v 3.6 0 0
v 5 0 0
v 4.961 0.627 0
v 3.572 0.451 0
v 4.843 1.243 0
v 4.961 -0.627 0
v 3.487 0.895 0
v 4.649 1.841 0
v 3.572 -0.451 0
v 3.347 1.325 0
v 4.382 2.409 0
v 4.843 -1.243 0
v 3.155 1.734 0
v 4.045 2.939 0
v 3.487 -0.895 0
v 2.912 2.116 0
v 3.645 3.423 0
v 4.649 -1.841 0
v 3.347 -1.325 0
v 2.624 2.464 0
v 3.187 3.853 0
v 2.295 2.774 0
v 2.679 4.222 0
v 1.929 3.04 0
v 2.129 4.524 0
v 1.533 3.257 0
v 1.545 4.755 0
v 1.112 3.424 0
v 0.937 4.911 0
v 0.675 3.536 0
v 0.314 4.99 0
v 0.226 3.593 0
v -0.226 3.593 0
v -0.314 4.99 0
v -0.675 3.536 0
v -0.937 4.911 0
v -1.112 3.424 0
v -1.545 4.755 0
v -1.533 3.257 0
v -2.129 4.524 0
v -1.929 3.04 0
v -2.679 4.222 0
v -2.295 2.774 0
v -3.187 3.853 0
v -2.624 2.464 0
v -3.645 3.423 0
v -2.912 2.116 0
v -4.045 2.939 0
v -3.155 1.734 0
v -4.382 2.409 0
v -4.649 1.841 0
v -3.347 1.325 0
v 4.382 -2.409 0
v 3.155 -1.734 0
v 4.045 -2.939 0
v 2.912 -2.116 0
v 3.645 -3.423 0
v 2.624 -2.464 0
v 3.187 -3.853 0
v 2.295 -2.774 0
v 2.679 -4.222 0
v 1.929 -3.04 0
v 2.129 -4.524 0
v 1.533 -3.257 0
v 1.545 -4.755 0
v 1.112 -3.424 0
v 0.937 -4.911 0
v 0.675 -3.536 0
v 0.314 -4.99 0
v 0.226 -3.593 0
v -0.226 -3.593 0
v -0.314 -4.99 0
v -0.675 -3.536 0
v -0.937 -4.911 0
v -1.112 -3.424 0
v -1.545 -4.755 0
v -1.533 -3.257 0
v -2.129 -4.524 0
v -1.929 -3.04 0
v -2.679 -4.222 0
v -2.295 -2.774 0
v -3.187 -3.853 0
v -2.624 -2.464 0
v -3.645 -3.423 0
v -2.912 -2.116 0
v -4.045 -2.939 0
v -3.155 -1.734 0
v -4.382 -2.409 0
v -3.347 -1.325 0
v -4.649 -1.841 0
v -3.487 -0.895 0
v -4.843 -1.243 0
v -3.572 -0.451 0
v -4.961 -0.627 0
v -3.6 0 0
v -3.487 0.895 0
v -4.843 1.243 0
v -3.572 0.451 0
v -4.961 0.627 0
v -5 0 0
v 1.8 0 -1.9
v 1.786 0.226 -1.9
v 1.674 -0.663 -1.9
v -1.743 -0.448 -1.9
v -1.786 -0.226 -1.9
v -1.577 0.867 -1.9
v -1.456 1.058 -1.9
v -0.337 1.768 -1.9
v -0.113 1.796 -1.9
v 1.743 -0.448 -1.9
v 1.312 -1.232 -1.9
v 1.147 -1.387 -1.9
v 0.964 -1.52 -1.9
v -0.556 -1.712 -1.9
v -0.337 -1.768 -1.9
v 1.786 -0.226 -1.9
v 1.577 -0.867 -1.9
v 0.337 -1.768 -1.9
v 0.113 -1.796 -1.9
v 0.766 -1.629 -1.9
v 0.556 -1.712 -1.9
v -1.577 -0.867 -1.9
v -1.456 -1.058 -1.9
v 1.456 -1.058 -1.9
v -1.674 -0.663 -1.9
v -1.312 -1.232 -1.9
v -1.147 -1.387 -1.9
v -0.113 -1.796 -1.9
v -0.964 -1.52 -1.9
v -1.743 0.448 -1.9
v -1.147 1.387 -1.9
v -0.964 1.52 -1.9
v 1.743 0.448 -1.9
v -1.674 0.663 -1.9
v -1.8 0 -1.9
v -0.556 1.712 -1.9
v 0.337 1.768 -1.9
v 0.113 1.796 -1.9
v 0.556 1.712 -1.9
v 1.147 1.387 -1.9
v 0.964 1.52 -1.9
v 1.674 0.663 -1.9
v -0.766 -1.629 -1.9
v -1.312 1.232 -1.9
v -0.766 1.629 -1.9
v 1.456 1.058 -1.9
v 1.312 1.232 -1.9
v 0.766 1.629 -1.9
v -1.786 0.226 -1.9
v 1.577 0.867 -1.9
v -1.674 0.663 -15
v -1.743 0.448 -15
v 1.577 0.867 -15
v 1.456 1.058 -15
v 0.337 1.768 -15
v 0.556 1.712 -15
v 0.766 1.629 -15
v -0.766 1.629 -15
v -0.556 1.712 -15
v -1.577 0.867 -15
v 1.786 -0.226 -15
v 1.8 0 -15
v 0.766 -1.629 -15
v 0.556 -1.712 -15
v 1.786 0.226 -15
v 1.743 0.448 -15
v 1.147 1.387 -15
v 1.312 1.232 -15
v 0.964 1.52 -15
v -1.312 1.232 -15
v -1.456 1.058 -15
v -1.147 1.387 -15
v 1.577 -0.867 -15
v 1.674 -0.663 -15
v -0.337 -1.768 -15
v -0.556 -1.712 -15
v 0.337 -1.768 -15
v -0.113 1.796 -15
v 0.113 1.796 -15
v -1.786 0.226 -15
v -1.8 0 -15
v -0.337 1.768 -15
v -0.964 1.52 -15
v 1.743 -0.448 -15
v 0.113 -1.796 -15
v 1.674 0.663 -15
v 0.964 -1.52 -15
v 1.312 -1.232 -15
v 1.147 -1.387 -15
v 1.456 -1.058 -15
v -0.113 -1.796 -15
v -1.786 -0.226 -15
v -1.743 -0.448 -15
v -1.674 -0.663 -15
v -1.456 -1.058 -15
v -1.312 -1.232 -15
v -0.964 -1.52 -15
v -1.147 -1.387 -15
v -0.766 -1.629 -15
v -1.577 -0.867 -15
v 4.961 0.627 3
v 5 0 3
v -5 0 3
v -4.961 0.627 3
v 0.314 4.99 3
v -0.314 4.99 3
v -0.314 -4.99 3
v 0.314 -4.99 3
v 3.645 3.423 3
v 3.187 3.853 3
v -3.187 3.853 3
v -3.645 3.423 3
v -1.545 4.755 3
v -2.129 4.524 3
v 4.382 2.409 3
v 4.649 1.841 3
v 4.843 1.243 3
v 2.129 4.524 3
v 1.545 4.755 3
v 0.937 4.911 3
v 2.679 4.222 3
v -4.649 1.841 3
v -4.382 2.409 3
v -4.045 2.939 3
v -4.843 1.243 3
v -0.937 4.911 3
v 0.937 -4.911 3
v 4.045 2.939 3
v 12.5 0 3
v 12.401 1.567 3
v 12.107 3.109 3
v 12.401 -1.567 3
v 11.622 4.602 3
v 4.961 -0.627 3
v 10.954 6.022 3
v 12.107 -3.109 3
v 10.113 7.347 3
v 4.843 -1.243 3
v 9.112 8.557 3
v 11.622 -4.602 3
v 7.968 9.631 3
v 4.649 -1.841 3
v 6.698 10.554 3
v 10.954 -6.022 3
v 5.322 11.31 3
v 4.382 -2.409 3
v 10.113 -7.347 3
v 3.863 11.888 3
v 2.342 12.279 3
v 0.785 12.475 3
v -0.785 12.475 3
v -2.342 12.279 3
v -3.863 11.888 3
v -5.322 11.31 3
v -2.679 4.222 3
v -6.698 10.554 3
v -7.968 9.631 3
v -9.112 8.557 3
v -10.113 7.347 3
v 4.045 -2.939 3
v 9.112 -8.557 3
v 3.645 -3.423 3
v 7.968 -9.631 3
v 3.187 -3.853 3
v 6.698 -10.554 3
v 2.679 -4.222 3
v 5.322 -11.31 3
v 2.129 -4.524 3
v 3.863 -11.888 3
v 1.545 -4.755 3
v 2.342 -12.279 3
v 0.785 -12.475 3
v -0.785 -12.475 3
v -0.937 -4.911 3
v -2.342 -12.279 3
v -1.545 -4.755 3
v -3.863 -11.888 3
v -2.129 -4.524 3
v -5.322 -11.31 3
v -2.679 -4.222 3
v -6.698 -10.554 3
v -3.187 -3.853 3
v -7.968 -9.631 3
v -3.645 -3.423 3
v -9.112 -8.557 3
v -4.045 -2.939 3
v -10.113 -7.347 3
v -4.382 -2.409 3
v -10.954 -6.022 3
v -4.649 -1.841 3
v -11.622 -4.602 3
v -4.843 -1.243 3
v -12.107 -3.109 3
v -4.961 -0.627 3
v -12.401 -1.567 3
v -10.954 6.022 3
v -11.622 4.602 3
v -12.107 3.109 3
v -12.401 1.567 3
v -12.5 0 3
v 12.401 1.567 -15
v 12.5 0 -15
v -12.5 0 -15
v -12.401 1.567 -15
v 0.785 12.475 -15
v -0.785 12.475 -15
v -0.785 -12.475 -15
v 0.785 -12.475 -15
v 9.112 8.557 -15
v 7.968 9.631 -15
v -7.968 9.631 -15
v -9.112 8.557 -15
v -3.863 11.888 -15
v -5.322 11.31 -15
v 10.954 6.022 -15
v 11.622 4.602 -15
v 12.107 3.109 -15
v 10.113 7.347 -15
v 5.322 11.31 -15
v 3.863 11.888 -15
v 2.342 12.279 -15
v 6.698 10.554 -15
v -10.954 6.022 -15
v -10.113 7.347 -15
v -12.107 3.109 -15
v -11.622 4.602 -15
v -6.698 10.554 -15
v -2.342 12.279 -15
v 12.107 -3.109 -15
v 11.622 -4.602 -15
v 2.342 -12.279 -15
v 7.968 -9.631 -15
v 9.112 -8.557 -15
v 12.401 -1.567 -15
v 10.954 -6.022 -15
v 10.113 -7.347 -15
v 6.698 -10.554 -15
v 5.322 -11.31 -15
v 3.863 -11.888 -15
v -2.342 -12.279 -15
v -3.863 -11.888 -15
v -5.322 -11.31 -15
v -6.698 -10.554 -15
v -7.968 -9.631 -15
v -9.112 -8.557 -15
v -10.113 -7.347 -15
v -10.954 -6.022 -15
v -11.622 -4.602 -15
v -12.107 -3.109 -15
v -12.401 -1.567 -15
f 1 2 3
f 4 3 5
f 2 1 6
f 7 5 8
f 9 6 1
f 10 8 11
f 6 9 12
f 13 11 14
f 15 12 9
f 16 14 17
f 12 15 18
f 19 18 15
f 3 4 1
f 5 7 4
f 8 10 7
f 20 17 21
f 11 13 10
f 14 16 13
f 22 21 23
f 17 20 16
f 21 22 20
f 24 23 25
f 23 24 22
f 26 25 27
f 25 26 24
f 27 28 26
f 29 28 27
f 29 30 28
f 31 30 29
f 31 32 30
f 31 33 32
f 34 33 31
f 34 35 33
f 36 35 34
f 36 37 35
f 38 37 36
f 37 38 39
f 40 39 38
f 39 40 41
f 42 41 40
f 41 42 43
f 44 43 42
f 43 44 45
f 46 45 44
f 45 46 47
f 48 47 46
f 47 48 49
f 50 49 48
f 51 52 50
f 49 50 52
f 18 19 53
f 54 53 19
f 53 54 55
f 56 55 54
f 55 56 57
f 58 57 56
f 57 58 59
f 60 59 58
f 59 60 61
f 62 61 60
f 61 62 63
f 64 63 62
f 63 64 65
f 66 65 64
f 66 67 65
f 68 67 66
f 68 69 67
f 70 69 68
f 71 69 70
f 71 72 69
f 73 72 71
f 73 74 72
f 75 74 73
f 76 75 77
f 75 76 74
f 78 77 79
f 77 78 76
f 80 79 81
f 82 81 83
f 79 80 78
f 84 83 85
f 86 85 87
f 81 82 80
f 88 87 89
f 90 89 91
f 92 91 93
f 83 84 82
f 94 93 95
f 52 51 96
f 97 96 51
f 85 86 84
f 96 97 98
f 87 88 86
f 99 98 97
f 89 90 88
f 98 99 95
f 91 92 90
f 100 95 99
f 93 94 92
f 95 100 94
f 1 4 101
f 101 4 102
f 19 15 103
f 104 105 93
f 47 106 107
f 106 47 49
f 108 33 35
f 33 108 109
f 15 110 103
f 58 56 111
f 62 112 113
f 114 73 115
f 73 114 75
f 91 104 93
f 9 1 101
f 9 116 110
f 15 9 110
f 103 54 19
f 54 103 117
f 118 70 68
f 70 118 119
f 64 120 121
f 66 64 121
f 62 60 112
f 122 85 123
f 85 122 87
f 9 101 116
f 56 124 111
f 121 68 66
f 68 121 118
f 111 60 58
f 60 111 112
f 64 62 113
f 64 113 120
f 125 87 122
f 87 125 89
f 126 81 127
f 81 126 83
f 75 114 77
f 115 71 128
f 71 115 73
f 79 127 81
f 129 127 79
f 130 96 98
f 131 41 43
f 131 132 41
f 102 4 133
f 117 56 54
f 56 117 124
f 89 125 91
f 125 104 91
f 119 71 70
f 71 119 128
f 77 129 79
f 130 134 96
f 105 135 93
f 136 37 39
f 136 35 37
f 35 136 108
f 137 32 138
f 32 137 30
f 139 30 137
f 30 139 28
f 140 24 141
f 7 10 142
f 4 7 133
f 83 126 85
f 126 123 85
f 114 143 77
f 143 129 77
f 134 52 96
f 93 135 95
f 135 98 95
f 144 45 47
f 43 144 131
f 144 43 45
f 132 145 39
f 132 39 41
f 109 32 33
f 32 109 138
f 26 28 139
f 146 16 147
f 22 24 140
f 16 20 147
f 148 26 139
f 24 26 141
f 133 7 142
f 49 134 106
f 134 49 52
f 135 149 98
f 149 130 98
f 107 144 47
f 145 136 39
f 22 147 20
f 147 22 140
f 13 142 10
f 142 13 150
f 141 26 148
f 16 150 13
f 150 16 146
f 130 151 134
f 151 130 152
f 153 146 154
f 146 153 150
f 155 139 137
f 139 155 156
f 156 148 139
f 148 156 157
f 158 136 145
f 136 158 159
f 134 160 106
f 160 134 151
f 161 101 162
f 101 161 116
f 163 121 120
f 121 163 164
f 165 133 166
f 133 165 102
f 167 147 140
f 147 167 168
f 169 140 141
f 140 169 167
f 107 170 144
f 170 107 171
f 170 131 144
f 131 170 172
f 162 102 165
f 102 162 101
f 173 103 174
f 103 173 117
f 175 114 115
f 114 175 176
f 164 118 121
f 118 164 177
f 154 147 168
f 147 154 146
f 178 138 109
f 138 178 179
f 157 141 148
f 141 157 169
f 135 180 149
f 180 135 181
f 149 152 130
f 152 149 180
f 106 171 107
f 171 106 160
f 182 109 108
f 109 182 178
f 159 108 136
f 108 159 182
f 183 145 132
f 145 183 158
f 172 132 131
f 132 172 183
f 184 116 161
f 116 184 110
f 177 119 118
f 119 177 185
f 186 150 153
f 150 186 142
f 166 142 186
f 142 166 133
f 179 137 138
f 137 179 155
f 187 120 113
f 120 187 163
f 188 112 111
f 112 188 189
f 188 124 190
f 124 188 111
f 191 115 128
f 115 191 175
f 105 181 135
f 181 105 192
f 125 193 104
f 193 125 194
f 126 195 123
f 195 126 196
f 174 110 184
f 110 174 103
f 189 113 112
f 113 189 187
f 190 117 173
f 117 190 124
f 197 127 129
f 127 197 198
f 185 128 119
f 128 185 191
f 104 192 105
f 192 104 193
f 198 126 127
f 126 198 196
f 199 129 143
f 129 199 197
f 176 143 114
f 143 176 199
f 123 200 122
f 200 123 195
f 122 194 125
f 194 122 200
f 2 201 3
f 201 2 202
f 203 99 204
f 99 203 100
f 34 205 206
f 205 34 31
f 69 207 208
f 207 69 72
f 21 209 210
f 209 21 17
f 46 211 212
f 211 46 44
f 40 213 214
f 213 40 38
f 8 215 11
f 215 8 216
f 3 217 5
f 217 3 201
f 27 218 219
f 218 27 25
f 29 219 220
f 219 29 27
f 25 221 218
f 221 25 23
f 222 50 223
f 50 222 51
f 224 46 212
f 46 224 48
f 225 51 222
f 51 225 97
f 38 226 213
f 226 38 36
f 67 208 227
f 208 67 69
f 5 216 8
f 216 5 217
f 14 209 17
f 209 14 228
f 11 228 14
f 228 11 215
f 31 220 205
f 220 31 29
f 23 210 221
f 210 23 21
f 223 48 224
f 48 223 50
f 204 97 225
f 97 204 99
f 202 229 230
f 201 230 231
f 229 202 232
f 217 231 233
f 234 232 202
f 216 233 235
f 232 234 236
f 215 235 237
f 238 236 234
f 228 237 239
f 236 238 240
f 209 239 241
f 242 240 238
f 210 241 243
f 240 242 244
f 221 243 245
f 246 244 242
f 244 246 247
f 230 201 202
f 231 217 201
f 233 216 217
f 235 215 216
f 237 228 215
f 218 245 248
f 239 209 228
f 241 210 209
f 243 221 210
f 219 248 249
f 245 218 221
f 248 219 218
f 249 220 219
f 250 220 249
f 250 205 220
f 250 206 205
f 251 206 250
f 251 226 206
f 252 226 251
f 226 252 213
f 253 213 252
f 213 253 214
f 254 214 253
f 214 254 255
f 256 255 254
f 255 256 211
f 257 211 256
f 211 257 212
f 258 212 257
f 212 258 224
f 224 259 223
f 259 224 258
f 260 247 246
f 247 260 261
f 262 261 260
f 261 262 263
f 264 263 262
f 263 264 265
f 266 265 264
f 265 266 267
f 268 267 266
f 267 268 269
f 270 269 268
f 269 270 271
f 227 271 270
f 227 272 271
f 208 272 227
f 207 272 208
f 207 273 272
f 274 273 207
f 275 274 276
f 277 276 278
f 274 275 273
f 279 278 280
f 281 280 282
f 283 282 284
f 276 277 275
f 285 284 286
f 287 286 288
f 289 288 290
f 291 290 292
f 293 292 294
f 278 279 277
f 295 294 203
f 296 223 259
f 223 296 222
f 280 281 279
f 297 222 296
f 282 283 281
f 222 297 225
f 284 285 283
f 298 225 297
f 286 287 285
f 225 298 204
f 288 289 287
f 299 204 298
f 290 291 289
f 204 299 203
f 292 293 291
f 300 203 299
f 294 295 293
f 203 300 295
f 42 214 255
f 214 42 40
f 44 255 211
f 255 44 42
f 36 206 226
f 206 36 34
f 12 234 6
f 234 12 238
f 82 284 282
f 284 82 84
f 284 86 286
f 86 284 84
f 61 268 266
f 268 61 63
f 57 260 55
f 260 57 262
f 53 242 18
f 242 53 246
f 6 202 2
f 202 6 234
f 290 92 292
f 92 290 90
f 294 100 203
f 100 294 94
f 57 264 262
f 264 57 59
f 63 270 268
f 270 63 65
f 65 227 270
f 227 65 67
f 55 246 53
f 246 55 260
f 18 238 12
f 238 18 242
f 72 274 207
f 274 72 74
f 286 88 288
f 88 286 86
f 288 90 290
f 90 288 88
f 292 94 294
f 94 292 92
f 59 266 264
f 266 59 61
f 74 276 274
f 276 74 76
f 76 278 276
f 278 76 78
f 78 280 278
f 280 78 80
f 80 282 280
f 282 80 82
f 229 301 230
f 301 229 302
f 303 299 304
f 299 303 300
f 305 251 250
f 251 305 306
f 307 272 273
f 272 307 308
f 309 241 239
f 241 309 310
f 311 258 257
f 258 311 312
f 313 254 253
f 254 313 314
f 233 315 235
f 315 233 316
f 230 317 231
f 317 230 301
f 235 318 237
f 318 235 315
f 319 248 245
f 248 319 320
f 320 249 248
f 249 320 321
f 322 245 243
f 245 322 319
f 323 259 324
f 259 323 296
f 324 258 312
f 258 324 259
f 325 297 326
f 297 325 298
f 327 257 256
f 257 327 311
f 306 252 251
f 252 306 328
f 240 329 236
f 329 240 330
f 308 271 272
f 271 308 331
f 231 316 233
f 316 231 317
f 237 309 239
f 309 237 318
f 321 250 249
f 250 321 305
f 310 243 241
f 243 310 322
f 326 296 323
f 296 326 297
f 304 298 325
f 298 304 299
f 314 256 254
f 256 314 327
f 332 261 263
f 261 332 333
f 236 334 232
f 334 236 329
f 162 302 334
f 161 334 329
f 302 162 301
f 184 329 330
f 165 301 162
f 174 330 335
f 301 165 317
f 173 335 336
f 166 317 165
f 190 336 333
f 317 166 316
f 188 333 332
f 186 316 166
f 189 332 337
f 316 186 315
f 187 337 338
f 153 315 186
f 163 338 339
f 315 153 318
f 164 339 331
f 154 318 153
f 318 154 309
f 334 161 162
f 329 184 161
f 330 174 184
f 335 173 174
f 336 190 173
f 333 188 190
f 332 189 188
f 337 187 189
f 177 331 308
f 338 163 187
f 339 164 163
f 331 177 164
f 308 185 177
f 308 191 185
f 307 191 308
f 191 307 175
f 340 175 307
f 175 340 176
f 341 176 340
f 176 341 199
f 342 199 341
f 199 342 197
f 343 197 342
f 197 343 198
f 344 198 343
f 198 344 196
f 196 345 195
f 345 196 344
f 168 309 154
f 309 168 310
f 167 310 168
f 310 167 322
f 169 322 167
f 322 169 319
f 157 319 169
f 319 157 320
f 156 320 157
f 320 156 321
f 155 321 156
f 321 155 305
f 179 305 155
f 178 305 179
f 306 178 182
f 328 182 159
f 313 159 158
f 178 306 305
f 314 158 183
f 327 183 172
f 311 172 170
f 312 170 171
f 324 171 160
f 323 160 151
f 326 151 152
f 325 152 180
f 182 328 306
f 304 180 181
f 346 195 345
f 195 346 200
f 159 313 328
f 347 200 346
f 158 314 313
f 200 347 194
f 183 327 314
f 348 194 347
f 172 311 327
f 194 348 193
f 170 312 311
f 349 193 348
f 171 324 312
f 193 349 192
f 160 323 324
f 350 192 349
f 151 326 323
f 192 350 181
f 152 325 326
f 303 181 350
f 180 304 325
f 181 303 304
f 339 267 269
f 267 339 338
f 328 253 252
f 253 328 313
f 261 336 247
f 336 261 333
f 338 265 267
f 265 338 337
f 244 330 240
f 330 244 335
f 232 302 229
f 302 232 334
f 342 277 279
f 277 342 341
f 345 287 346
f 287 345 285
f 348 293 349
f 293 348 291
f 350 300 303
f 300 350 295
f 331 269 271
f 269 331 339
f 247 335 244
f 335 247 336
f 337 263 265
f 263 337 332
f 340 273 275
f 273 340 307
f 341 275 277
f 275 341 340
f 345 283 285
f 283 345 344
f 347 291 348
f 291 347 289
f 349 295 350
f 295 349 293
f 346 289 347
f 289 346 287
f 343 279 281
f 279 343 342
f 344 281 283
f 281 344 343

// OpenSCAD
$fn = 50;

difference() {
	union() {
		translate(v = [0, 0, -15.0]) {
			cylinder(h = 18, r = 12.5);
		}
	}
	union() {
		translate(v = [0, 0, 0]) {
			rotate(a = [0, 0, 0]) {
				difference() {
					union() {
						translate(v = [0, 0, -18.0]) {
							cylinder(h = 18, r = 1.5);
						}
						translate(v = [0, 0, -1.9]) {
							cylinder(h = 1.9, r1 = 1.8, r2 = 3.6);
						}
						translate(v = [0, 0, -18.0]) {
							cylinder(h = 18, r = 1.8);
						}
						translate(v = [0, 0, -18.0]) {
							cylinder(h = 18, r = 1.5);
						}
					}
					union();
				}
			}
		}
		#cylinder(h = 3, r = 5.0);
	}
}
